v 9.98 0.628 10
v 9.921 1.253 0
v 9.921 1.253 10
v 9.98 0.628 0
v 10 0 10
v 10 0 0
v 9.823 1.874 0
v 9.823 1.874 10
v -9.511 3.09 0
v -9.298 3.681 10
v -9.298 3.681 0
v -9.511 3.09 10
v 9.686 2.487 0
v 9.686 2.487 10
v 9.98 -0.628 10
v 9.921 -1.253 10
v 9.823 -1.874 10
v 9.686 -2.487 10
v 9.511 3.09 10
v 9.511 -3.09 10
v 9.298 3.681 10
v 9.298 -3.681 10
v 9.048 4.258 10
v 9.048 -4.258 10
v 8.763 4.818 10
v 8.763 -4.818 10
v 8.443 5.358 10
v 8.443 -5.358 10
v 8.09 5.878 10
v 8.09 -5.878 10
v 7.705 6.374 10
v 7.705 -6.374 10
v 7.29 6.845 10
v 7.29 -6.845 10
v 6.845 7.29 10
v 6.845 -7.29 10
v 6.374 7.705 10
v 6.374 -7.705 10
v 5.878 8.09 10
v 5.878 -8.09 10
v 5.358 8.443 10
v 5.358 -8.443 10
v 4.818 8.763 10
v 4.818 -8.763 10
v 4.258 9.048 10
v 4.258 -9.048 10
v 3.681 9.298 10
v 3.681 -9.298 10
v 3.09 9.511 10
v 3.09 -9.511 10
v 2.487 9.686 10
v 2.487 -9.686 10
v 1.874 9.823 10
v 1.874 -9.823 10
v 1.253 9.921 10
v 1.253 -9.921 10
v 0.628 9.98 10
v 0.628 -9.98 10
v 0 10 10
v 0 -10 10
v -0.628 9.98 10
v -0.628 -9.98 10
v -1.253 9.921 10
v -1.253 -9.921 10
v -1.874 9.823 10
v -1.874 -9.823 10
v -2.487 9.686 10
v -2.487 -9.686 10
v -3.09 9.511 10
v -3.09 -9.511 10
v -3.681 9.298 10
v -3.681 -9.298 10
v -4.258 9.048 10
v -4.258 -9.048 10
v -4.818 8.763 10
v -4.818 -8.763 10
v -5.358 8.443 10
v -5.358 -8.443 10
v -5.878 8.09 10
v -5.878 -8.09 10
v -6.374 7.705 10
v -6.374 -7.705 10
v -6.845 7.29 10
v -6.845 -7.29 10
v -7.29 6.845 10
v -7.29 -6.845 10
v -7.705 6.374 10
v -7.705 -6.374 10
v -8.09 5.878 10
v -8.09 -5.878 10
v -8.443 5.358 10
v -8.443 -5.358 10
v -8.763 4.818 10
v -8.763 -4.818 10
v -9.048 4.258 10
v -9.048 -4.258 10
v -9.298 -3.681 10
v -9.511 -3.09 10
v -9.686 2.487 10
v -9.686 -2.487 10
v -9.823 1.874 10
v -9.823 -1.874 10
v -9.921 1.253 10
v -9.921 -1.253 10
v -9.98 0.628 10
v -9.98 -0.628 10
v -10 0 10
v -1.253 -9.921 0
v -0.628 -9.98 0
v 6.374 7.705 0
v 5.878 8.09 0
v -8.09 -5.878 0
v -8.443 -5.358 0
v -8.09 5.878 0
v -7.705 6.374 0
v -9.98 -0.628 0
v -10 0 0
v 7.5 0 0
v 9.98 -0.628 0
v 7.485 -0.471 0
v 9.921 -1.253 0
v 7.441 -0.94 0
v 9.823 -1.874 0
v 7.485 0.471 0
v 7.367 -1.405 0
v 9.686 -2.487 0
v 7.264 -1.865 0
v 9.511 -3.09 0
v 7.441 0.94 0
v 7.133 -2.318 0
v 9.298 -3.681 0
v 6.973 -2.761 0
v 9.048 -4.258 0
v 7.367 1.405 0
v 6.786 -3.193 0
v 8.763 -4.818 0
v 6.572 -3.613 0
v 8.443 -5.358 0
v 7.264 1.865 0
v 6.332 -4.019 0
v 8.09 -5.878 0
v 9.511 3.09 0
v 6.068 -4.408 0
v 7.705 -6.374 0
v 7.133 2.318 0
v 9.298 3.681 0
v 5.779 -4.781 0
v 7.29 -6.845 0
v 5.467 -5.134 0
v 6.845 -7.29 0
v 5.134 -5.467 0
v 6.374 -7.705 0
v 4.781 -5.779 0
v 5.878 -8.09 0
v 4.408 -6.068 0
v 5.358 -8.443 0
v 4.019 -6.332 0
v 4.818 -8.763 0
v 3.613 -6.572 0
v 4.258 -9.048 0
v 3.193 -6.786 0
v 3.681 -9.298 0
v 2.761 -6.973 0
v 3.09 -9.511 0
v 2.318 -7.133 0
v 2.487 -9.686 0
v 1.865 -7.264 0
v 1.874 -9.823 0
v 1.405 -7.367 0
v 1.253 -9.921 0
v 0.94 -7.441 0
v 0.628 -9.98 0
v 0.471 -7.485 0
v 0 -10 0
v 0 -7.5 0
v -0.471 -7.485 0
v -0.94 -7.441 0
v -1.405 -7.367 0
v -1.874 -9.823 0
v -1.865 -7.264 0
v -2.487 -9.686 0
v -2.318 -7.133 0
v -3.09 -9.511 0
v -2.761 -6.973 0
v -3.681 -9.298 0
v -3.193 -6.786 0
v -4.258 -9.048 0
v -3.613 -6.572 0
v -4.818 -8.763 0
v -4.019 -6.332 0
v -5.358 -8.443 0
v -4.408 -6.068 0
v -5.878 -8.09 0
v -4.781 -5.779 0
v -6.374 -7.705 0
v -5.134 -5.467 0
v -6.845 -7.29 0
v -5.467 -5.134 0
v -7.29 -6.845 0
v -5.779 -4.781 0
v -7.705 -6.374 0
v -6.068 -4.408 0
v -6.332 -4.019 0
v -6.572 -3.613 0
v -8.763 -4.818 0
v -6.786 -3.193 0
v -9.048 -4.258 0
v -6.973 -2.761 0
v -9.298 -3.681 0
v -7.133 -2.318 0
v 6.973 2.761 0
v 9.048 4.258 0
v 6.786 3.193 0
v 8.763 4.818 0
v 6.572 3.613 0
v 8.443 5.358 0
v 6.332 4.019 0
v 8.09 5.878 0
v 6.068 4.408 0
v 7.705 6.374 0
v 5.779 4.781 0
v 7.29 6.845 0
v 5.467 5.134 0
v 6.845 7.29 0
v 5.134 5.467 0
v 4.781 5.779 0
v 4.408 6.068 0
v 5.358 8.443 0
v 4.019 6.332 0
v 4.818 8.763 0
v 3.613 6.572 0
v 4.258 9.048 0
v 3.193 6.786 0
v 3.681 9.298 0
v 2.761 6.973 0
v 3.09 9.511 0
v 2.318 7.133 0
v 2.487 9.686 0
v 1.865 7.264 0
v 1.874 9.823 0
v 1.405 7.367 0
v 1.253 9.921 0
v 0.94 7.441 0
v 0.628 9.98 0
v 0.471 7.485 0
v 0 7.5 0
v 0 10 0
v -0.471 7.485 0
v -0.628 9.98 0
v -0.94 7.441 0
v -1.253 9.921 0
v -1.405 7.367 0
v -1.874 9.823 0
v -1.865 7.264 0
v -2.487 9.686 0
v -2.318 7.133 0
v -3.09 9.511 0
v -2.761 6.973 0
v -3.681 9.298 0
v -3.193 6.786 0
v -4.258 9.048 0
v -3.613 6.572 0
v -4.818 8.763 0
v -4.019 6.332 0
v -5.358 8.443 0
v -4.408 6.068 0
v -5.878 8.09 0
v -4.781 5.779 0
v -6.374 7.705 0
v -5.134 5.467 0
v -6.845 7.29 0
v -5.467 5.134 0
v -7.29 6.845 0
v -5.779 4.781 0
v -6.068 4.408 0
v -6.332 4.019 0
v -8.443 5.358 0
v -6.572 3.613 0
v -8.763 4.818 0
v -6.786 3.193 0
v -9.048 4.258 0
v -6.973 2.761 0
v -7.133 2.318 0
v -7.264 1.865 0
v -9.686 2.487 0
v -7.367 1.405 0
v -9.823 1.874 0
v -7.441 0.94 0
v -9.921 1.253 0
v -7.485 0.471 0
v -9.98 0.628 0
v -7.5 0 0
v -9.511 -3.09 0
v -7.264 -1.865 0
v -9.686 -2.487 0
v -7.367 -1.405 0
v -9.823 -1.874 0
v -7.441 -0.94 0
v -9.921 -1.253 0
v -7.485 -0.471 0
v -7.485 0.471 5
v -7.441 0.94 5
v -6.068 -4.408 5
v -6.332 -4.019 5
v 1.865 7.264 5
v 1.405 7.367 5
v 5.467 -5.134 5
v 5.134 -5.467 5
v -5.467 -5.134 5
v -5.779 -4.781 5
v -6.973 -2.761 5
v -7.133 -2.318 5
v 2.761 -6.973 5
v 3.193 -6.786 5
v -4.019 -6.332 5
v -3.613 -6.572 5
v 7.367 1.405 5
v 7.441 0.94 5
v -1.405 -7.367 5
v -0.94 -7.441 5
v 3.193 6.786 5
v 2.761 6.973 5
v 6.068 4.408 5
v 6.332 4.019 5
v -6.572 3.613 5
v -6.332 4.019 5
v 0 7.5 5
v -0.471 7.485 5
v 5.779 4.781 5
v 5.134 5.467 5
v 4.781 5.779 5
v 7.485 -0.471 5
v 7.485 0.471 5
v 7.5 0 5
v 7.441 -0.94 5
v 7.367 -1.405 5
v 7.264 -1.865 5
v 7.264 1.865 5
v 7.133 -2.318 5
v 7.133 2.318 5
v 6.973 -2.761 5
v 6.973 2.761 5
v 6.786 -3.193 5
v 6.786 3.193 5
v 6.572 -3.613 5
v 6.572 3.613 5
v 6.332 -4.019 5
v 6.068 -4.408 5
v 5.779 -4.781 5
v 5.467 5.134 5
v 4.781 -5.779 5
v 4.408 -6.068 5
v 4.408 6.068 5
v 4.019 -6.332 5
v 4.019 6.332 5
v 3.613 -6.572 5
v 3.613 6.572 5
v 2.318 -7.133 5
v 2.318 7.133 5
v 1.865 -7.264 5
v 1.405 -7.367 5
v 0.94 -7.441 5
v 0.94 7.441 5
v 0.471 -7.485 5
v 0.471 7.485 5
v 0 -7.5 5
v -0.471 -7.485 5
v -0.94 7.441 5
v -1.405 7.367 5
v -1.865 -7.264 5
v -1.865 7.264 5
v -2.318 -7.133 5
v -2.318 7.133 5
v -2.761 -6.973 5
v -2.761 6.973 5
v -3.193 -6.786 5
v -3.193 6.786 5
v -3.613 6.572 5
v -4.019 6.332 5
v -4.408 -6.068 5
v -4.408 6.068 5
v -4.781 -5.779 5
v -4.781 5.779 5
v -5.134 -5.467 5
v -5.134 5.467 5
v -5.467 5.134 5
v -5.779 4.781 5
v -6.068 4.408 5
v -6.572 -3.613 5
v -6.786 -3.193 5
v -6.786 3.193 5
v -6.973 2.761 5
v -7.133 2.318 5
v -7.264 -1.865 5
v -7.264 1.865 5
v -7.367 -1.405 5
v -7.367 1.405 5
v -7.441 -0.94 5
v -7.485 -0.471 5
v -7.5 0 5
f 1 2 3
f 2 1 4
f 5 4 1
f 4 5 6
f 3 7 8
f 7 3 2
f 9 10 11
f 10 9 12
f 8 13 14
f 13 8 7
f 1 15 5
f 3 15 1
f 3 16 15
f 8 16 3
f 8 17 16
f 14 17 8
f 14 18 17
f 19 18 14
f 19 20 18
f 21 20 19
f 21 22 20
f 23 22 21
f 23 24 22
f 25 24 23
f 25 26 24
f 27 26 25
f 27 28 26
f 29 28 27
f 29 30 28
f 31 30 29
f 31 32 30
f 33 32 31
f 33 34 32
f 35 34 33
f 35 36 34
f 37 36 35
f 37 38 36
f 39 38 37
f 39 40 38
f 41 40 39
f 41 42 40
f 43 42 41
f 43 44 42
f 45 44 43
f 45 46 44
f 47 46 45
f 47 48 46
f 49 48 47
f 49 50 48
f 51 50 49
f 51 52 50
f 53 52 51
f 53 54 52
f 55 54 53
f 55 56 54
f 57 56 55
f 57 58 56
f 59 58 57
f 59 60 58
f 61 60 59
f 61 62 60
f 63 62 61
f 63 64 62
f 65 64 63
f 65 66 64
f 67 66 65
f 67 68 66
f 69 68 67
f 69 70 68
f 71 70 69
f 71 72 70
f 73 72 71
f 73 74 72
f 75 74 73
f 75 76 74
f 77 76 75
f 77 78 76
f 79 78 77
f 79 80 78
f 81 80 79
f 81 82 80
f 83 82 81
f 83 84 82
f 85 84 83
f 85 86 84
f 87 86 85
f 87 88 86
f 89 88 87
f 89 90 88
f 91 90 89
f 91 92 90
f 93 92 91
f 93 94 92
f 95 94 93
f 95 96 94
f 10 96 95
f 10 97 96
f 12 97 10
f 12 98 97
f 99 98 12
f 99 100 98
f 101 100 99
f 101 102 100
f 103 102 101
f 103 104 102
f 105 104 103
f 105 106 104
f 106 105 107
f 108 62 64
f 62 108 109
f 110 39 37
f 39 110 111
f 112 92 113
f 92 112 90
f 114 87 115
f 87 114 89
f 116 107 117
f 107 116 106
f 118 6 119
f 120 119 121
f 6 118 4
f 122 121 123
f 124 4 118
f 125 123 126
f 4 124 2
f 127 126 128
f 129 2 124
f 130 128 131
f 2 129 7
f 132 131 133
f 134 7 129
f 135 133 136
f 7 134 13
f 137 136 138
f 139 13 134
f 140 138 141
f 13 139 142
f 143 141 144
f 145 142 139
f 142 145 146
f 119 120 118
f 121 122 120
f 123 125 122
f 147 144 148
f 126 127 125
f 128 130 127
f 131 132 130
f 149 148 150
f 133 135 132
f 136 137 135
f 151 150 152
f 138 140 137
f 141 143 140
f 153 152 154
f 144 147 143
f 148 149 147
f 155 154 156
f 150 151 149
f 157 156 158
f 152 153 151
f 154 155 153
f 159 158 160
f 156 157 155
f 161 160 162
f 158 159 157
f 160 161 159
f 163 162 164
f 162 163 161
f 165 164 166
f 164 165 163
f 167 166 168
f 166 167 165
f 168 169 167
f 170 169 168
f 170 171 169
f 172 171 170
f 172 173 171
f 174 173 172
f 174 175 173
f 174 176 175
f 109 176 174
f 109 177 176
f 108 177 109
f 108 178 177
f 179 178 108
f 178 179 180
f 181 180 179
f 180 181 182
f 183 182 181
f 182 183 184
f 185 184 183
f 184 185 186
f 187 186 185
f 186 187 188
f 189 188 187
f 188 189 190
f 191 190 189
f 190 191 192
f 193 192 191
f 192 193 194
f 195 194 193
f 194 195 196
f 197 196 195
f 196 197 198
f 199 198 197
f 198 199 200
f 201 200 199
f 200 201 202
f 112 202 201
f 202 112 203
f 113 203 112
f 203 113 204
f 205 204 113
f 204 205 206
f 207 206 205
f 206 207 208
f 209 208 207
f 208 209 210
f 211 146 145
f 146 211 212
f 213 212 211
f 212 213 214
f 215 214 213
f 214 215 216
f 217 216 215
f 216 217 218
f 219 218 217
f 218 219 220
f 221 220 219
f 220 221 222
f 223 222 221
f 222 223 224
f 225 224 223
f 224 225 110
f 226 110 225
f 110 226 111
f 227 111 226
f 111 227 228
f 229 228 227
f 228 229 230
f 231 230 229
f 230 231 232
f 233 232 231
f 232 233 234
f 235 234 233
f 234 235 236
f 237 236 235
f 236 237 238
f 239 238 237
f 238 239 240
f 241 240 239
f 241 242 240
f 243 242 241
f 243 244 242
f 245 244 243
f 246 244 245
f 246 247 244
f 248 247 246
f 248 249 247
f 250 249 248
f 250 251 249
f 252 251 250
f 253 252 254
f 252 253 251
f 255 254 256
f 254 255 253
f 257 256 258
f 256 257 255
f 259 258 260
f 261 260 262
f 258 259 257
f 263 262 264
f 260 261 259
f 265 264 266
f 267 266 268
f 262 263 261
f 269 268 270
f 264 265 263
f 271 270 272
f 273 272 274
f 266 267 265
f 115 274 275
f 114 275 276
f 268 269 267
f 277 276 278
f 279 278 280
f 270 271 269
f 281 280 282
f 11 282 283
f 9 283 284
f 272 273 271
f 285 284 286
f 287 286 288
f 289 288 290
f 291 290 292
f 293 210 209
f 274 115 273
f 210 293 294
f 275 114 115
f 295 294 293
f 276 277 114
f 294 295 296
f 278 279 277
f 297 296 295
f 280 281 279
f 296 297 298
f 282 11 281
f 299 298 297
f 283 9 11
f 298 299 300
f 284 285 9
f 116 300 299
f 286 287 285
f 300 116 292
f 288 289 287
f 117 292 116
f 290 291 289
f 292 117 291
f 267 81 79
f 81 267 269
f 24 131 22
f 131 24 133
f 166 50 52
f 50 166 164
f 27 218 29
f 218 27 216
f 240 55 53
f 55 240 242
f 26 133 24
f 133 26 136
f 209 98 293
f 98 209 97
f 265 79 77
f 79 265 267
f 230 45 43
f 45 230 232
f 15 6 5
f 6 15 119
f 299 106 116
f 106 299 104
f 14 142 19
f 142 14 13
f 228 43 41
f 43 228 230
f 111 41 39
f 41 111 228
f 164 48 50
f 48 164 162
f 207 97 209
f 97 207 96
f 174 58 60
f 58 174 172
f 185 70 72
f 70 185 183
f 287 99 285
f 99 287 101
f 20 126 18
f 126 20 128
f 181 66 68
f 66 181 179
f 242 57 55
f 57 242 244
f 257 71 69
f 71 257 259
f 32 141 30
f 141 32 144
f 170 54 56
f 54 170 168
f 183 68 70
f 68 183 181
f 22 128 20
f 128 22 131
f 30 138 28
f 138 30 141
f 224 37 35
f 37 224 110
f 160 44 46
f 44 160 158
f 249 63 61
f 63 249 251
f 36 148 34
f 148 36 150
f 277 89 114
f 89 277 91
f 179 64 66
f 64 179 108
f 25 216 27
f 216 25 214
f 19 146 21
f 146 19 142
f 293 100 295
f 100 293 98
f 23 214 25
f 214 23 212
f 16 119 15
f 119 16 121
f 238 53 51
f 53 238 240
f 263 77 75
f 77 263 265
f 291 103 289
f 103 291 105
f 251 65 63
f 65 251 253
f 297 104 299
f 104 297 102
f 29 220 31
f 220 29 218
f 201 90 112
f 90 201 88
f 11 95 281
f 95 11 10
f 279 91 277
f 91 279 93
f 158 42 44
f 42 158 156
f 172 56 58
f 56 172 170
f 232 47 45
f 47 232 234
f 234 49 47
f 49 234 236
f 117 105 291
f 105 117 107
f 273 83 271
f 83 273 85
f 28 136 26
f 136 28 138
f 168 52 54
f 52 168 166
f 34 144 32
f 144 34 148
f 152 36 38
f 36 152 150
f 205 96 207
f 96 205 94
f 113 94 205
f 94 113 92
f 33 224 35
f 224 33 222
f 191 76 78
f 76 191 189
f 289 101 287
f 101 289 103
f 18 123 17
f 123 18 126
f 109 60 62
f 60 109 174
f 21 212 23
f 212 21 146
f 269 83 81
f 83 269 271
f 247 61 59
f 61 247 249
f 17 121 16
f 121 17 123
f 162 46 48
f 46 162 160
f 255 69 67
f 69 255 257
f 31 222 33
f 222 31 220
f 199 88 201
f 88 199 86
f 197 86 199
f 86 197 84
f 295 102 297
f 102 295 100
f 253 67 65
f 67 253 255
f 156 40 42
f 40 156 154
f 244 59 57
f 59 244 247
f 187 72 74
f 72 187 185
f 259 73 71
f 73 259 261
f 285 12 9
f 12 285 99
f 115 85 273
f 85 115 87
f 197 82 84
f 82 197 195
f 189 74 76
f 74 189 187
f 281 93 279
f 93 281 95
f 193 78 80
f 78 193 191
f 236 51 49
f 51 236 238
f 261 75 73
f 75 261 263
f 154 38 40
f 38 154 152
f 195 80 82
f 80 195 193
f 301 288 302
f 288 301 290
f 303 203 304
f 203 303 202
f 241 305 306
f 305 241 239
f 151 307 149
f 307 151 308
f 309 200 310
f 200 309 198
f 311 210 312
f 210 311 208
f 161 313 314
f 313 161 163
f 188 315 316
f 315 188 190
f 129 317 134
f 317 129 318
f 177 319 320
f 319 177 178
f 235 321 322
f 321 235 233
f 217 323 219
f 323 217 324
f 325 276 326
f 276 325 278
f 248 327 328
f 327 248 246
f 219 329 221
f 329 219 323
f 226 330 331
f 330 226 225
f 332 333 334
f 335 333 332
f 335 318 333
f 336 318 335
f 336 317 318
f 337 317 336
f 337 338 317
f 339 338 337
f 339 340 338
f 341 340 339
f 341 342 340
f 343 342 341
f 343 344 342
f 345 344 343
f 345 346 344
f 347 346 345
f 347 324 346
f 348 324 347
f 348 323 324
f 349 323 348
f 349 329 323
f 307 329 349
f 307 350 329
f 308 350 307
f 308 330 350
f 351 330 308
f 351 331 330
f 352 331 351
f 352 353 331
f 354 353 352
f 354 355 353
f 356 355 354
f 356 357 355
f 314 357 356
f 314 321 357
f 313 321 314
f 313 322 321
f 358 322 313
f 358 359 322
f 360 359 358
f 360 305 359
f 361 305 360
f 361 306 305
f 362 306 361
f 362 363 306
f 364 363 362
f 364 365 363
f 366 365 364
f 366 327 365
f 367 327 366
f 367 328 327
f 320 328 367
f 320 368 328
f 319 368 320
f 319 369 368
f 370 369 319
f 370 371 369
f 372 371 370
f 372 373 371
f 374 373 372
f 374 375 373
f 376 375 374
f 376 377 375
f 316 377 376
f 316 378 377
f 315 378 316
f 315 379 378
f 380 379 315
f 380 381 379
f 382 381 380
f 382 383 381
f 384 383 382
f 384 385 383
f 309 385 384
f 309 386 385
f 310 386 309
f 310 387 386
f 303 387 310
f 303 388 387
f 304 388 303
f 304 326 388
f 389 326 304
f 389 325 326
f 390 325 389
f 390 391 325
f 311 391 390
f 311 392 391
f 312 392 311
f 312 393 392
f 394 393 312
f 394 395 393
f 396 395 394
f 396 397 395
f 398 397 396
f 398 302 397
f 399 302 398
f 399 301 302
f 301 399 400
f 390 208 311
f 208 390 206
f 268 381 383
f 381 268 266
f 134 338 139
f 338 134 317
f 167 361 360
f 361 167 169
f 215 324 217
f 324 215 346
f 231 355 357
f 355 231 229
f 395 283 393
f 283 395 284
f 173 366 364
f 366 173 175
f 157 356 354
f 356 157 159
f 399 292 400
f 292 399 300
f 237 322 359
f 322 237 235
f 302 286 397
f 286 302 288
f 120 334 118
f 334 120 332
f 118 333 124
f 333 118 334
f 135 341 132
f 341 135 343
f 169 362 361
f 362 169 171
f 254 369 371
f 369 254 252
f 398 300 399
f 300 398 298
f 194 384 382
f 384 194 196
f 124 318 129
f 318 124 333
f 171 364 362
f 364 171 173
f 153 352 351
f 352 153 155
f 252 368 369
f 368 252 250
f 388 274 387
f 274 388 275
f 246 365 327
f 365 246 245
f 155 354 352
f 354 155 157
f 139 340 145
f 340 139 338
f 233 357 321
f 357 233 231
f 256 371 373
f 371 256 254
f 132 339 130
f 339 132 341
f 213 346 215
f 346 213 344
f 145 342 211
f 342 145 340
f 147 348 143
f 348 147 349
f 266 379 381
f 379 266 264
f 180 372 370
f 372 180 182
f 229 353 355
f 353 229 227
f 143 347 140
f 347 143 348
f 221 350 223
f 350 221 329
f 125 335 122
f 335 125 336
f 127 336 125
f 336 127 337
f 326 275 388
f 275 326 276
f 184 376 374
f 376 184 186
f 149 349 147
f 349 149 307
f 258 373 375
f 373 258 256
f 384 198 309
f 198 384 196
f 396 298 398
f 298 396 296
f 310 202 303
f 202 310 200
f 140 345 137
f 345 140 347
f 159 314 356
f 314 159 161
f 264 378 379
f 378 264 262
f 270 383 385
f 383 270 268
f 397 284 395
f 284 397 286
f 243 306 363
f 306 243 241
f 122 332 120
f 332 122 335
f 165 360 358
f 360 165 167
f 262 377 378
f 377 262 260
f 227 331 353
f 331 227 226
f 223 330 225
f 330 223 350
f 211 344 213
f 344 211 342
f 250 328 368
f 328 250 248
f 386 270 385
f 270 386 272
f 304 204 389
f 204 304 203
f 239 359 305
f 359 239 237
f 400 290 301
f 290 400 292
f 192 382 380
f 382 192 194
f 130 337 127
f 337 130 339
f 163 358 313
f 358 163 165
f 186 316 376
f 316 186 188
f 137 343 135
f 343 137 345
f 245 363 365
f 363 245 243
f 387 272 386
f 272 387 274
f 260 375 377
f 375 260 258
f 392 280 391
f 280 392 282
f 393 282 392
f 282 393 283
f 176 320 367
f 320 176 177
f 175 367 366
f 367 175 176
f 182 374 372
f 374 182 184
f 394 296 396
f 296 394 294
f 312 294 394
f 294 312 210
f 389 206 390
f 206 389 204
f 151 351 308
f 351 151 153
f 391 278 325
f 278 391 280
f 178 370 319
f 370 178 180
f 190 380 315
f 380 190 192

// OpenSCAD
difference() {
   $fn = 100;
   cylinder(d=20,h=10);
   cylinder(d=15,h=5);
}
